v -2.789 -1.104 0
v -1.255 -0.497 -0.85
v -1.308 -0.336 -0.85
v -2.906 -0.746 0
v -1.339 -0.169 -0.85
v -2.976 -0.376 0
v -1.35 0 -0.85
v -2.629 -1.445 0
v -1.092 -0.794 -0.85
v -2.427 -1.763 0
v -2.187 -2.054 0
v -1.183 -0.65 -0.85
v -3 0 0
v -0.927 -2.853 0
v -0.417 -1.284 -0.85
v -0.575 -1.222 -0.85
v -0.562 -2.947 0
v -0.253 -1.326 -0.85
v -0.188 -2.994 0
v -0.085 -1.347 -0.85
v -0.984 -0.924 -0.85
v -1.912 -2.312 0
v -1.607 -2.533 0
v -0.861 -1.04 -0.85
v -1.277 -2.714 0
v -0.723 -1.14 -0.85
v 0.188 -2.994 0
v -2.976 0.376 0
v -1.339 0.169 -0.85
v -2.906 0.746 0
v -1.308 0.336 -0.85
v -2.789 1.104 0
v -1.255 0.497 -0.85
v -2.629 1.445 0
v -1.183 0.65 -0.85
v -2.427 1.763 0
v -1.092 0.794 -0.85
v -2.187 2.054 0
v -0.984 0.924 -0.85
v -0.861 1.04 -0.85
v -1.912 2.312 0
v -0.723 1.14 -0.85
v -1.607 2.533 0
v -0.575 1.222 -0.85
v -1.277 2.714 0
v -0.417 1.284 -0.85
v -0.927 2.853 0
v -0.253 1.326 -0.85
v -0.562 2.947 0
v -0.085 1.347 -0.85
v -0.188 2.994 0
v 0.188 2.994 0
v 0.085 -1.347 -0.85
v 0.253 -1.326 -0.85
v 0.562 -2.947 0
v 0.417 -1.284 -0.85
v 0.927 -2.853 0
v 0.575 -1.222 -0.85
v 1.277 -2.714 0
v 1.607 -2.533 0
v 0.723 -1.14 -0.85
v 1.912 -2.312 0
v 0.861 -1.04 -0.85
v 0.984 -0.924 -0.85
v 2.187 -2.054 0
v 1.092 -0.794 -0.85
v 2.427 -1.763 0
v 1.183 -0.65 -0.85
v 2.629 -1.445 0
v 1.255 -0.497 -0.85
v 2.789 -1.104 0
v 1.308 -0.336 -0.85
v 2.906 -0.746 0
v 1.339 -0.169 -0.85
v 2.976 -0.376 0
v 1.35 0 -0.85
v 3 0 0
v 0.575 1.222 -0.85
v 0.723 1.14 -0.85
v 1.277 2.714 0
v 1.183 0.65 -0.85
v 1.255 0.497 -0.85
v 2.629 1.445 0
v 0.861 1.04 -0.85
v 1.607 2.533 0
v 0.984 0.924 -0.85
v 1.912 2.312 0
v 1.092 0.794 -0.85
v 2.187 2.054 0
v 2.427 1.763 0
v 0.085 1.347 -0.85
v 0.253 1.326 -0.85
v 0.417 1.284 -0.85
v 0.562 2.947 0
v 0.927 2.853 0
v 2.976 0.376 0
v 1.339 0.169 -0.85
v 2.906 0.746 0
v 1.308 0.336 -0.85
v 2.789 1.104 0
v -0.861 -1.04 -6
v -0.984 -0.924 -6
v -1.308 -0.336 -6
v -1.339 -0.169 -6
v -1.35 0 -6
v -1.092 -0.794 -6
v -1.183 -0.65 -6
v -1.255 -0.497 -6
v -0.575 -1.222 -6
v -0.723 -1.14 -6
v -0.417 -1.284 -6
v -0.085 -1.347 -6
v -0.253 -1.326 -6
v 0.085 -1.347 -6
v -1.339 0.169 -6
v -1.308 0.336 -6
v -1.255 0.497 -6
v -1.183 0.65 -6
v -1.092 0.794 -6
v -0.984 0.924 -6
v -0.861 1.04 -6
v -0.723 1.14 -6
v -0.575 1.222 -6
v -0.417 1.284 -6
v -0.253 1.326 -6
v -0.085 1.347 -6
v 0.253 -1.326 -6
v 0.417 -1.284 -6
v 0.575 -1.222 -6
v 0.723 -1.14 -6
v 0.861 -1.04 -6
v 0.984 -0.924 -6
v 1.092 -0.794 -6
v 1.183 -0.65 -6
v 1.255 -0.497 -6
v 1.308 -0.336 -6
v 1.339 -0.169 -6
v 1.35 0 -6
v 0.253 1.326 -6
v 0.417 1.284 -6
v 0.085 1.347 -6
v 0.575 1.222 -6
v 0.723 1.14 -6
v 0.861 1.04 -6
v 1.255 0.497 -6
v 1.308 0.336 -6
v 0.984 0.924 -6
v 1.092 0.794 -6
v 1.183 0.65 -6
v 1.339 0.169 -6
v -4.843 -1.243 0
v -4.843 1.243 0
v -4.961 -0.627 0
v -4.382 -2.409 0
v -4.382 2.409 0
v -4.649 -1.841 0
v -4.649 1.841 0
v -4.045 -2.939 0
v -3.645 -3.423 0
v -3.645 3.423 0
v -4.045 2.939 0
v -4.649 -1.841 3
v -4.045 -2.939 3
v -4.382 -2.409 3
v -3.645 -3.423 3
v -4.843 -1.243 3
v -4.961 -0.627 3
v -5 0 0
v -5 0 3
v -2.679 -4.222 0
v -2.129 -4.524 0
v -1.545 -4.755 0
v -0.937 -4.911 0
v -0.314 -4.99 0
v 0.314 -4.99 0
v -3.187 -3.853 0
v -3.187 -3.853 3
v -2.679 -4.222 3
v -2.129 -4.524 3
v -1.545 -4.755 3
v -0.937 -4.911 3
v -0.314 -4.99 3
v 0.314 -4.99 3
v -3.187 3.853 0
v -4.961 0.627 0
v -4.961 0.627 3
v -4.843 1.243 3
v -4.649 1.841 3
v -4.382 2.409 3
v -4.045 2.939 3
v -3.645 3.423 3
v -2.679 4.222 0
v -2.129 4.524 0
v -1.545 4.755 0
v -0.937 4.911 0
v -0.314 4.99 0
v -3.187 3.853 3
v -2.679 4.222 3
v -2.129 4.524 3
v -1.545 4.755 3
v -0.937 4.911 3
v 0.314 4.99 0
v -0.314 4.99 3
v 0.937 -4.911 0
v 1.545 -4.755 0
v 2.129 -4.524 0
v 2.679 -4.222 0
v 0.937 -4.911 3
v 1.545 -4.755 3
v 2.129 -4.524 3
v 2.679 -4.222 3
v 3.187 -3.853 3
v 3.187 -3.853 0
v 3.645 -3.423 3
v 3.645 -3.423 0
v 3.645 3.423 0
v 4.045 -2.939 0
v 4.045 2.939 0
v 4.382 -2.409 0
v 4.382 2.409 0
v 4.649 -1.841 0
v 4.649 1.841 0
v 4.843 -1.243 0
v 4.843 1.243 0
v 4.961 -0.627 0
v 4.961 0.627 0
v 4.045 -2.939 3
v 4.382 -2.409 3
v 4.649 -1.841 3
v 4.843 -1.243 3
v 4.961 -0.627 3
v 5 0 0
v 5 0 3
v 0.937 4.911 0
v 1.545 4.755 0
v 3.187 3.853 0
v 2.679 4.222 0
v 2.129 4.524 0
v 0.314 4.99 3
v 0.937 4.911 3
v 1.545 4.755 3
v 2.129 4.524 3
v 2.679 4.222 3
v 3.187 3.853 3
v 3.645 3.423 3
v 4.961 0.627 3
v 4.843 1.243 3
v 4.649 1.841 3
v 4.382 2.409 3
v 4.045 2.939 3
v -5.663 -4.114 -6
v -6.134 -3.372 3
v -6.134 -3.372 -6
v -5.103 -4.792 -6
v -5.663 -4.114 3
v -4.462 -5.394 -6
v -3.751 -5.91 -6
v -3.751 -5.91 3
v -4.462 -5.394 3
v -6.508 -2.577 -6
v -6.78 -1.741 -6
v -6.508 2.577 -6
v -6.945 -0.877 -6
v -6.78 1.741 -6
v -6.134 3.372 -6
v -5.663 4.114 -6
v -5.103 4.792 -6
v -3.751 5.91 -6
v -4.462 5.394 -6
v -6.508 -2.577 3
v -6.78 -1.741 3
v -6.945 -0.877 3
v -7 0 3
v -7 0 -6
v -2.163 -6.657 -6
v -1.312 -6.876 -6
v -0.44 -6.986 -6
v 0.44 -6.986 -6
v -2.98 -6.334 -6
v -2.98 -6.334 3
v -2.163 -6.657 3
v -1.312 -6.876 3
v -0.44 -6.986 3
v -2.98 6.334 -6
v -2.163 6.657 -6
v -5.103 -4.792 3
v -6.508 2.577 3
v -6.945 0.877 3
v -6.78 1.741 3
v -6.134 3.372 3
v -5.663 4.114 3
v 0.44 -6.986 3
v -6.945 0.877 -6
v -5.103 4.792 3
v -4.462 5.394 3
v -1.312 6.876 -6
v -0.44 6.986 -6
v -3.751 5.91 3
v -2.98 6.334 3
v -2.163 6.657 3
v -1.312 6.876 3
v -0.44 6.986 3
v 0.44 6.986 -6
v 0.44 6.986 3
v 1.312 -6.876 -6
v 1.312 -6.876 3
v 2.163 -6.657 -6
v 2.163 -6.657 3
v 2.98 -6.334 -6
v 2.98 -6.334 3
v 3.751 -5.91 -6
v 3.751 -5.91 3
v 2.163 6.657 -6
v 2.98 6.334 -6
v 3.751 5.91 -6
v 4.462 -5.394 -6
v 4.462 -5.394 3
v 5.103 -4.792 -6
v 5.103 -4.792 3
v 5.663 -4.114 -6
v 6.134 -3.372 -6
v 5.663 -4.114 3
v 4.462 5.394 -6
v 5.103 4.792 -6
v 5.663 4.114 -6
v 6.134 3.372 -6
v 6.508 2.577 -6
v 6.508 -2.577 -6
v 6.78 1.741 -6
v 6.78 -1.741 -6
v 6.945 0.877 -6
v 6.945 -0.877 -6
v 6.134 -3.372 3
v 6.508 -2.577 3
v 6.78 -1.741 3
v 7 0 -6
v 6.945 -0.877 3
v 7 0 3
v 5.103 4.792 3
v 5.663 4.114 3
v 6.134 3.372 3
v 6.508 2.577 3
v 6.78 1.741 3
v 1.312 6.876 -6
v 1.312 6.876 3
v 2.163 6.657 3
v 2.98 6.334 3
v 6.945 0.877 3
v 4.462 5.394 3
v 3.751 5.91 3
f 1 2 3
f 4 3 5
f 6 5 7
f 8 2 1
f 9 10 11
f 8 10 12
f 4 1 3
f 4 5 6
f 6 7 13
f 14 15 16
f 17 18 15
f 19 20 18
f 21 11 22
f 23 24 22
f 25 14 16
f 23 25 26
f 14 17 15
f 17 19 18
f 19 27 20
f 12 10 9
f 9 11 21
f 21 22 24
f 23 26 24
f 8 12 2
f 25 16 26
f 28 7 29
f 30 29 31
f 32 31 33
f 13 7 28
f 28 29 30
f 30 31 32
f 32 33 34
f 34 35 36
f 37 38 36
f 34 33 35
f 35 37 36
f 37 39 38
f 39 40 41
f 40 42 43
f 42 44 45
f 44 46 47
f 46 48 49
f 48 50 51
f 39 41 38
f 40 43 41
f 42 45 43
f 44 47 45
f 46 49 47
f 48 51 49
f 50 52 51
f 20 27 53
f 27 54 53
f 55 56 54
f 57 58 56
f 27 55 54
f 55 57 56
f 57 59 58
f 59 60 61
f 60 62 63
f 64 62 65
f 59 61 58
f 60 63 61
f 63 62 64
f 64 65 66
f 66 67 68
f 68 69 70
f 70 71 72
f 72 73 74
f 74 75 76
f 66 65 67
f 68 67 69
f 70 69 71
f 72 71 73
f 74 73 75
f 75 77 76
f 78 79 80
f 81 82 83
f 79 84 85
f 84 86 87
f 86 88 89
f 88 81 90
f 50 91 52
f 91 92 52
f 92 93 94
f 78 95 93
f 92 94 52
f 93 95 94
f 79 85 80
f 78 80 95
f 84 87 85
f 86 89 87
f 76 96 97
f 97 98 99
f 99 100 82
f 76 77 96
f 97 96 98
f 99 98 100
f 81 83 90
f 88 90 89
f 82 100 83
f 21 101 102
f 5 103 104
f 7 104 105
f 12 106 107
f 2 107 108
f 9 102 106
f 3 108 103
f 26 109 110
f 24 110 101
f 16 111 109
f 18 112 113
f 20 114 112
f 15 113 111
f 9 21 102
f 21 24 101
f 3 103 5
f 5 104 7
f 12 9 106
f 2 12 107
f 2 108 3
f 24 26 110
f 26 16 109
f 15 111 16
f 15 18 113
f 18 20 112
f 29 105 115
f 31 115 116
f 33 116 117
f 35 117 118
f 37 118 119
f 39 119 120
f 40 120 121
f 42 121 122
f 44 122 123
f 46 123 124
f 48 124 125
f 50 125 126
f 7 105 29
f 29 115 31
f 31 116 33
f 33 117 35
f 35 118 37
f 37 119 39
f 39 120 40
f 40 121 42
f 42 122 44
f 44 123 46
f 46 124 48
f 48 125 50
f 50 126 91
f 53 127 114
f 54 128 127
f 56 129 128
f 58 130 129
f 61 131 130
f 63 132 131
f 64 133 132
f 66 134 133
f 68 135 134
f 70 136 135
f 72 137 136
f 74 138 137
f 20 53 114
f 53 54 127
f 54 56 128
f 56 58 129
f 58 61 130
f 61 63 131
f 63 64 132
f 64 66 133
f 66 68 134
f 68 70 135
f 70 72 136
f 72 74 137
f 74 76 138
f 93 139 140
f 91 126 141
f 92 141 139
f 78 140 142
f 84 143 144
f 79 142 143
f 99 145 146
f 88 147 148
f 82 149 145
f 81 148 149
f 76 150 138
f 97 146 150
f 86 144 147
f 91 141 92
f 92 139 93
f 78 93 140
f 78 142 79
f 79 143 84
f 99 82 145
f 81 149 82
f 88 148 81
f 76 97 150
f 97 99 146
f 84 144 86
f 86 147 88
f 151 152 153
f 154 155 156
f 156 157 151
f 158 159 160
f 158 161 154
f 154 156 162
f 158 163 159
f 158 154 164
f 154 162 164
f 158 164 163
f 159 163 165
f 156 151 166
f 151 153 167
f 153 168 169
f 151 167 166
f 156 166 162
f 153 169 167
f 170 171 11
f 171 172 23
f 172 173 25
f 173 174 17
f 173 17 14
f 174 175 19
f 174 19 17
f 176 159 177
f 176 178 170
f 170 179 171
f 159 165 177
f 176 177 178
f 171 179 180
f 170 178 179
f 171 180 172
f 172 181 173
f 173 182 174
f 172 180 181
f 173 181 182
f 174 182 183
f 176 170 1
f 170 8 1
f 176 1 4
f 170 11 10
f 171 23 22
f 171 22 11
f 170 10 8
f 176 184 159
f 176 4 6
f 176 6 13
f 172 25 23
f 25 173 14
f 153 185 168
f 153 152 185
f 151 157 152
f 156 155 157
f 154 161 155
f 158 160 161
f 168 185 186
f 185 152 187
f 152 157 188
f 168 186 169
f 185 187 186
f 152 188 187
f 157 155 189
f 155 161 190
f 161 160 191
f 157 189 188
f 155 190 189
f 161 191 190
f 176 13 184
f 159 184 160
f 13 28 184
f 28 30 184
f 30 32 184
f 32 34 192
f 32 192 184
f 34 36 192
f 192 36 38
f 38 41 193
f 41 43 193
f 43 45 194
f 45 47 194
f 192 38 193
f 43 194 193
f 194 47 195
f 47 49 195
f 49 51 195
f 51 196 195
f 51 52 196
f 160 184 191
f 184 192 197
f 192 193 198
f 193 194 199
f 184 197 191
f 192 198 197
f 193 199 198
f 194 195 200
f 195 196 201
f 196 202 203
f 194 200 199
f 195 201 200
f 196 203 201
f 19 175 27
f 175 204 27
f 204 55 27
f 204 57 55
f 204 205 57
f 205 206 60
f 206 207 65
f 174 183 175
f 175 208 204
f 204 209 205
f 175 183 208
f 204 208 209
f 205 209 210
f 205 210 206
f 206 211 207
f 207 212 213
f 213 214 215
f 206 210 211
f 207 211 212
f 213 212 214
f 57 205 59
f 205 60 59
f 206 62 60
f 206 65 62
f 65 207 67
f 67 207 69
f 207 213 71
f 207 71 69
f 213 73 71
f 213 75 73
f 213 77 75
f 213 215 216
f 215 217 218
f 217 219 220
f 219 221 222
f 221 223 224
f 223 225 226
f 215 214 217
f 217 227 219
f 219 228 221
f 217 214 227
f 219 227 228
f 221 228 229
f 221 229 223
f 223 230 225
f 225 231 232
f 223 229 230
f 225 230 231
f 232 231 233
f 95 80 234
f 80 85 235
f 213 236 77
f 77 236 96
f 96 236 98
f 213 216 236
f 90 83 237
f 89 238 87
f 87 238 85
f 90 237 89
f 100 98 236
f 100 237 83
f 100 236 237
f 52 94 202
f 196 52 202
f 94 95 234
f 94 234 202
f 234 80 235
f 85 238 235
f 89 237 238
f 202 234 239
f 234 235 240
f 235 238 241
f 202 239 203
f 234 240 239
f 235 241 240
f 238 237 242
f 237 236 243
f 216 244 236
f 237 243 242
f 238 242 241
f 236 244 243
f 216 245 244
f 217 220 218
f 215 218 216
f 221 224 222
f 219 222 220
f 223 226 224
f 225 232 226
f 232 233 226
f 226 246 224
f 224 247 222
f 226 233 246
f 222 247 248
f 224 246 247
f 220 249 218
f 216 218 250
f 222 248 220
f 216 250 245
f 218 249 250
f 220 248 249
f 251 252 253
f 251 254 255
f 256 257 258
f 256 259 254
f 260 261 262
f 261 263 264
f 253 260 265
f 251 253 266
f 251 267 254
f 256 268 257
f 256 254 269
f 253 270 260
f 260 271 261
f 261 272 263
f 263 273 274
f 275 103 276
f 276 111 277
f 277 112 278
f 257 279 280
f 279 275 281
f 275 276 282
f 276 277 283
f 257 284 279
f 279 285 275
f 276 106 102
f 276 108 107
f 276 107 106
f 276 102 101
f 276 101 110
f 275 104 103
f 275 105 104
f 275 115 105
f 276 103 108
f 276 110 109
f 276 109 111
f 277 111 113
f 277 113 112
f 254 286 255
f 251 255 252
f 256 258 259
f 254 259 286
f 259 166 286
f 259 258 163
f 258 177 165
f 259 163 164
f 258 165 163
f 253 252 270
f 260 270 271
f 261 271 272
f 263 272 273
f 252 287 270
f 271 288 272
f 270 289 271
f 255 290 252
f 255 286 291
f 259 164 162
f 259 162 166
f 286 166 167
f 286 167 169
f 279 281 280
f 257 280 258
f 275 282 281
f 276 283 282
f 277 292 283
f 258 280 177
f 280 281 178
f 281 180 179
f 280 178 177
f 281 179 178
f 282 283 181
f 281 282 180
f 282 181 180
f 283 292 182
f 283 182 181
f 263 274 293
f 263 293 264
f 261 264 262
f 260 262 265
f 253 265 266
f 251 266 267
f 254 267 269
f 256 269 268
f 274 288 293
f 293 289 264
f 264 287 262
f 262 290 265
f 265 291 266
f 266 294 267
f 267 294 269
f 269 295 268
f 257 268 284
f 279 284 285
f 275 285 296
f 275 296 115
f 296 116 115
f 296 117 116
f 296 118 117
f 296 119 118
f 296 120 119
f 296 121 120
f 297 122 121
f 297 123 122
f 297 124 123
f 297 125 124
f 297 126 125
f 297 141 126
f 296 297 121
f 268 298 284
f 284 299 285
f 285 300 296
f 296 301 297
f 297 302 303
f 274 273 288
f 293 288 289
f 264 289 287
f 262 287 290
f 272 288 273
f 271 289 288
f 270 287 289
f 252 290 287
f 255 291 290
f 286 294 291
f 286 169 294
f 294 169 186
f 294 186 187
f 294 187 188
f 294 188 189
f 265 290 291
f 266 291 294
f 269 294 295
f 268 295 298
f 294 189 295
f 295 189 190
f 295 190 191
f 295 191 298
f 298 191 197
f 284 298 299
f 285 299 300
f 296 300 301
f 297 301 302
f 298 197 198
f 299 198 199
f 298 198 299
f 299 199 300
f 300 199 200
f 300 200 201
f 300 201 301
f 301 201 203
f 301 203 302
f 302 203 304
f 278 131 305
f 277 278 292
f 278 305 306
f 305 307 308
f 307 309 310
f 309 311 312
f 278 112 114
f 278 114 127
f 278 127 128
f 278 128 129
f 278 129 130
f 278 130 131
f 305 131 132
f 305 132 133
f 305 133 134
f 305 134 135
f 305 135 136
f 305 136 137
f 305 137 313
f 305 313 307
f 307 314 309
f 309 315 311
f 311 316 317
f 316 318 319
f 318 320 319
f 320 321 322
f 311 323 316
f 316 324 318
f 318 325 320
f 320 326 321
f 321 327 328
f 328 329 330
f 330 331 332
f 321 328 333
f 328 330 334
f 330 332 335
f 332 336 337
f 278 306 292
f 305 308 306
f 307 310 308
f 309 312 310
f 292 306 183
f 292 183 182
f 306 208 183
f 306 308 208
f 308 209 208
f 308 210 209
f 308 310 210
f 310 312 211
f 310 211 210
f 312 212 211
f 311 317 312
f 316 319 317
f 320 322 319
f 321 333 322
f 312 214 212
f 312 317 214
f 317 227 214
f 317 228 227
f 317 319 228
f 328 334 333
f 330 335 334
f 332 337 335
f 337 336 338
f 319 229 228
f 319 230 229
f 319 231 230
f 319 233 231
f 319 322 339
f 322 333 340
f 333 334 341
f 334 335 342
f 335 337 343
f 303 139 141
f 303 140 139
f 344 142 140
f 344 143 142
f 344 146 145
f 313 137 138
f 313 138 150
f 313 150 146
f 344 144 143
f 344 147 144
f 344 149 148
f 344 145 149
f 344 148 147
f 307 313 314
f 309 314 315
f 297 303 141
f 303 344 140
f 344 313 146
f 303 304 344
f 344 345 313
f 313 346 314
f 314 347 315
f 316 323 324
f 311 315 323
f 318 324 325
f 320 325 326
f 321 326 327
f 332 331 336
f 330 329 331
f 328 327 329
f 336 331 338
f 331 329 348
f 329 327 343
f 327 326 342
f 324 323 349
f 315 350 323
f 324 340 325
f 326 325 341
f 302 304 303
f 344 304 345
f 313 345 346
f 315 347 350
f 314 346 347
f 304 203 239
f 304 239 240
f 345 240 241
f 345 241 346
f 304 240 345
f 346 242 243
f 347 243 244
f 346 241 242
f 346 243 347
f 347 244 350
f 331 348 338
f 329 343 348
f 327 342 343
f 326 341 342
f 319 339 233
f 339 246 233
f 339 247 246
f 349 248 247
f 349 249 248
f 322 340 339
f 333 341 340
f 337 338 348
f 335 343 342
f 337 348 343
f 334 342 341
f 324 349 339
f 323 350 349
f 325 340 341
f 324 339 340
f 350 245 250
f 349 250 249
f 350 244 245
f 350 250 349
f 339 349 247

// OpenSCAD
$fn = 50;


difference() {
	union() {
		translate(v = [0, 0, -6.0000000000]) {
			cylinder(h = 9, r = 7.0000000000);
		}
	}
	union() {
		translate(v = [0, 0, 0]) {
			rotate(a = [0, 0, 0]) {
				difference() {
					union() {
						translate(v = [0, 0, -9.0000000000]) {
							cylinder(h = 9, r = 1.0000000000);
						}
						translate(v = [0, 0, -0.8500000000]) {
							cylinder(h = 0.8500000000, r1 = 1.3500000000, r2 = 3.0000000000);
						}
						translate(v = [0, 0, -9.0000000000]) {
							cylinder(h = 9, r = 1.3500000000);
						}
						translate(v = [0, 0, -9.0000000000]) {
							cylinder(h = 9, r = 1.0000000000);
						}
					}
					union();
				}
			}
		}
		#cylinder(h = 3, r = 5.0000000000);
	}
}
